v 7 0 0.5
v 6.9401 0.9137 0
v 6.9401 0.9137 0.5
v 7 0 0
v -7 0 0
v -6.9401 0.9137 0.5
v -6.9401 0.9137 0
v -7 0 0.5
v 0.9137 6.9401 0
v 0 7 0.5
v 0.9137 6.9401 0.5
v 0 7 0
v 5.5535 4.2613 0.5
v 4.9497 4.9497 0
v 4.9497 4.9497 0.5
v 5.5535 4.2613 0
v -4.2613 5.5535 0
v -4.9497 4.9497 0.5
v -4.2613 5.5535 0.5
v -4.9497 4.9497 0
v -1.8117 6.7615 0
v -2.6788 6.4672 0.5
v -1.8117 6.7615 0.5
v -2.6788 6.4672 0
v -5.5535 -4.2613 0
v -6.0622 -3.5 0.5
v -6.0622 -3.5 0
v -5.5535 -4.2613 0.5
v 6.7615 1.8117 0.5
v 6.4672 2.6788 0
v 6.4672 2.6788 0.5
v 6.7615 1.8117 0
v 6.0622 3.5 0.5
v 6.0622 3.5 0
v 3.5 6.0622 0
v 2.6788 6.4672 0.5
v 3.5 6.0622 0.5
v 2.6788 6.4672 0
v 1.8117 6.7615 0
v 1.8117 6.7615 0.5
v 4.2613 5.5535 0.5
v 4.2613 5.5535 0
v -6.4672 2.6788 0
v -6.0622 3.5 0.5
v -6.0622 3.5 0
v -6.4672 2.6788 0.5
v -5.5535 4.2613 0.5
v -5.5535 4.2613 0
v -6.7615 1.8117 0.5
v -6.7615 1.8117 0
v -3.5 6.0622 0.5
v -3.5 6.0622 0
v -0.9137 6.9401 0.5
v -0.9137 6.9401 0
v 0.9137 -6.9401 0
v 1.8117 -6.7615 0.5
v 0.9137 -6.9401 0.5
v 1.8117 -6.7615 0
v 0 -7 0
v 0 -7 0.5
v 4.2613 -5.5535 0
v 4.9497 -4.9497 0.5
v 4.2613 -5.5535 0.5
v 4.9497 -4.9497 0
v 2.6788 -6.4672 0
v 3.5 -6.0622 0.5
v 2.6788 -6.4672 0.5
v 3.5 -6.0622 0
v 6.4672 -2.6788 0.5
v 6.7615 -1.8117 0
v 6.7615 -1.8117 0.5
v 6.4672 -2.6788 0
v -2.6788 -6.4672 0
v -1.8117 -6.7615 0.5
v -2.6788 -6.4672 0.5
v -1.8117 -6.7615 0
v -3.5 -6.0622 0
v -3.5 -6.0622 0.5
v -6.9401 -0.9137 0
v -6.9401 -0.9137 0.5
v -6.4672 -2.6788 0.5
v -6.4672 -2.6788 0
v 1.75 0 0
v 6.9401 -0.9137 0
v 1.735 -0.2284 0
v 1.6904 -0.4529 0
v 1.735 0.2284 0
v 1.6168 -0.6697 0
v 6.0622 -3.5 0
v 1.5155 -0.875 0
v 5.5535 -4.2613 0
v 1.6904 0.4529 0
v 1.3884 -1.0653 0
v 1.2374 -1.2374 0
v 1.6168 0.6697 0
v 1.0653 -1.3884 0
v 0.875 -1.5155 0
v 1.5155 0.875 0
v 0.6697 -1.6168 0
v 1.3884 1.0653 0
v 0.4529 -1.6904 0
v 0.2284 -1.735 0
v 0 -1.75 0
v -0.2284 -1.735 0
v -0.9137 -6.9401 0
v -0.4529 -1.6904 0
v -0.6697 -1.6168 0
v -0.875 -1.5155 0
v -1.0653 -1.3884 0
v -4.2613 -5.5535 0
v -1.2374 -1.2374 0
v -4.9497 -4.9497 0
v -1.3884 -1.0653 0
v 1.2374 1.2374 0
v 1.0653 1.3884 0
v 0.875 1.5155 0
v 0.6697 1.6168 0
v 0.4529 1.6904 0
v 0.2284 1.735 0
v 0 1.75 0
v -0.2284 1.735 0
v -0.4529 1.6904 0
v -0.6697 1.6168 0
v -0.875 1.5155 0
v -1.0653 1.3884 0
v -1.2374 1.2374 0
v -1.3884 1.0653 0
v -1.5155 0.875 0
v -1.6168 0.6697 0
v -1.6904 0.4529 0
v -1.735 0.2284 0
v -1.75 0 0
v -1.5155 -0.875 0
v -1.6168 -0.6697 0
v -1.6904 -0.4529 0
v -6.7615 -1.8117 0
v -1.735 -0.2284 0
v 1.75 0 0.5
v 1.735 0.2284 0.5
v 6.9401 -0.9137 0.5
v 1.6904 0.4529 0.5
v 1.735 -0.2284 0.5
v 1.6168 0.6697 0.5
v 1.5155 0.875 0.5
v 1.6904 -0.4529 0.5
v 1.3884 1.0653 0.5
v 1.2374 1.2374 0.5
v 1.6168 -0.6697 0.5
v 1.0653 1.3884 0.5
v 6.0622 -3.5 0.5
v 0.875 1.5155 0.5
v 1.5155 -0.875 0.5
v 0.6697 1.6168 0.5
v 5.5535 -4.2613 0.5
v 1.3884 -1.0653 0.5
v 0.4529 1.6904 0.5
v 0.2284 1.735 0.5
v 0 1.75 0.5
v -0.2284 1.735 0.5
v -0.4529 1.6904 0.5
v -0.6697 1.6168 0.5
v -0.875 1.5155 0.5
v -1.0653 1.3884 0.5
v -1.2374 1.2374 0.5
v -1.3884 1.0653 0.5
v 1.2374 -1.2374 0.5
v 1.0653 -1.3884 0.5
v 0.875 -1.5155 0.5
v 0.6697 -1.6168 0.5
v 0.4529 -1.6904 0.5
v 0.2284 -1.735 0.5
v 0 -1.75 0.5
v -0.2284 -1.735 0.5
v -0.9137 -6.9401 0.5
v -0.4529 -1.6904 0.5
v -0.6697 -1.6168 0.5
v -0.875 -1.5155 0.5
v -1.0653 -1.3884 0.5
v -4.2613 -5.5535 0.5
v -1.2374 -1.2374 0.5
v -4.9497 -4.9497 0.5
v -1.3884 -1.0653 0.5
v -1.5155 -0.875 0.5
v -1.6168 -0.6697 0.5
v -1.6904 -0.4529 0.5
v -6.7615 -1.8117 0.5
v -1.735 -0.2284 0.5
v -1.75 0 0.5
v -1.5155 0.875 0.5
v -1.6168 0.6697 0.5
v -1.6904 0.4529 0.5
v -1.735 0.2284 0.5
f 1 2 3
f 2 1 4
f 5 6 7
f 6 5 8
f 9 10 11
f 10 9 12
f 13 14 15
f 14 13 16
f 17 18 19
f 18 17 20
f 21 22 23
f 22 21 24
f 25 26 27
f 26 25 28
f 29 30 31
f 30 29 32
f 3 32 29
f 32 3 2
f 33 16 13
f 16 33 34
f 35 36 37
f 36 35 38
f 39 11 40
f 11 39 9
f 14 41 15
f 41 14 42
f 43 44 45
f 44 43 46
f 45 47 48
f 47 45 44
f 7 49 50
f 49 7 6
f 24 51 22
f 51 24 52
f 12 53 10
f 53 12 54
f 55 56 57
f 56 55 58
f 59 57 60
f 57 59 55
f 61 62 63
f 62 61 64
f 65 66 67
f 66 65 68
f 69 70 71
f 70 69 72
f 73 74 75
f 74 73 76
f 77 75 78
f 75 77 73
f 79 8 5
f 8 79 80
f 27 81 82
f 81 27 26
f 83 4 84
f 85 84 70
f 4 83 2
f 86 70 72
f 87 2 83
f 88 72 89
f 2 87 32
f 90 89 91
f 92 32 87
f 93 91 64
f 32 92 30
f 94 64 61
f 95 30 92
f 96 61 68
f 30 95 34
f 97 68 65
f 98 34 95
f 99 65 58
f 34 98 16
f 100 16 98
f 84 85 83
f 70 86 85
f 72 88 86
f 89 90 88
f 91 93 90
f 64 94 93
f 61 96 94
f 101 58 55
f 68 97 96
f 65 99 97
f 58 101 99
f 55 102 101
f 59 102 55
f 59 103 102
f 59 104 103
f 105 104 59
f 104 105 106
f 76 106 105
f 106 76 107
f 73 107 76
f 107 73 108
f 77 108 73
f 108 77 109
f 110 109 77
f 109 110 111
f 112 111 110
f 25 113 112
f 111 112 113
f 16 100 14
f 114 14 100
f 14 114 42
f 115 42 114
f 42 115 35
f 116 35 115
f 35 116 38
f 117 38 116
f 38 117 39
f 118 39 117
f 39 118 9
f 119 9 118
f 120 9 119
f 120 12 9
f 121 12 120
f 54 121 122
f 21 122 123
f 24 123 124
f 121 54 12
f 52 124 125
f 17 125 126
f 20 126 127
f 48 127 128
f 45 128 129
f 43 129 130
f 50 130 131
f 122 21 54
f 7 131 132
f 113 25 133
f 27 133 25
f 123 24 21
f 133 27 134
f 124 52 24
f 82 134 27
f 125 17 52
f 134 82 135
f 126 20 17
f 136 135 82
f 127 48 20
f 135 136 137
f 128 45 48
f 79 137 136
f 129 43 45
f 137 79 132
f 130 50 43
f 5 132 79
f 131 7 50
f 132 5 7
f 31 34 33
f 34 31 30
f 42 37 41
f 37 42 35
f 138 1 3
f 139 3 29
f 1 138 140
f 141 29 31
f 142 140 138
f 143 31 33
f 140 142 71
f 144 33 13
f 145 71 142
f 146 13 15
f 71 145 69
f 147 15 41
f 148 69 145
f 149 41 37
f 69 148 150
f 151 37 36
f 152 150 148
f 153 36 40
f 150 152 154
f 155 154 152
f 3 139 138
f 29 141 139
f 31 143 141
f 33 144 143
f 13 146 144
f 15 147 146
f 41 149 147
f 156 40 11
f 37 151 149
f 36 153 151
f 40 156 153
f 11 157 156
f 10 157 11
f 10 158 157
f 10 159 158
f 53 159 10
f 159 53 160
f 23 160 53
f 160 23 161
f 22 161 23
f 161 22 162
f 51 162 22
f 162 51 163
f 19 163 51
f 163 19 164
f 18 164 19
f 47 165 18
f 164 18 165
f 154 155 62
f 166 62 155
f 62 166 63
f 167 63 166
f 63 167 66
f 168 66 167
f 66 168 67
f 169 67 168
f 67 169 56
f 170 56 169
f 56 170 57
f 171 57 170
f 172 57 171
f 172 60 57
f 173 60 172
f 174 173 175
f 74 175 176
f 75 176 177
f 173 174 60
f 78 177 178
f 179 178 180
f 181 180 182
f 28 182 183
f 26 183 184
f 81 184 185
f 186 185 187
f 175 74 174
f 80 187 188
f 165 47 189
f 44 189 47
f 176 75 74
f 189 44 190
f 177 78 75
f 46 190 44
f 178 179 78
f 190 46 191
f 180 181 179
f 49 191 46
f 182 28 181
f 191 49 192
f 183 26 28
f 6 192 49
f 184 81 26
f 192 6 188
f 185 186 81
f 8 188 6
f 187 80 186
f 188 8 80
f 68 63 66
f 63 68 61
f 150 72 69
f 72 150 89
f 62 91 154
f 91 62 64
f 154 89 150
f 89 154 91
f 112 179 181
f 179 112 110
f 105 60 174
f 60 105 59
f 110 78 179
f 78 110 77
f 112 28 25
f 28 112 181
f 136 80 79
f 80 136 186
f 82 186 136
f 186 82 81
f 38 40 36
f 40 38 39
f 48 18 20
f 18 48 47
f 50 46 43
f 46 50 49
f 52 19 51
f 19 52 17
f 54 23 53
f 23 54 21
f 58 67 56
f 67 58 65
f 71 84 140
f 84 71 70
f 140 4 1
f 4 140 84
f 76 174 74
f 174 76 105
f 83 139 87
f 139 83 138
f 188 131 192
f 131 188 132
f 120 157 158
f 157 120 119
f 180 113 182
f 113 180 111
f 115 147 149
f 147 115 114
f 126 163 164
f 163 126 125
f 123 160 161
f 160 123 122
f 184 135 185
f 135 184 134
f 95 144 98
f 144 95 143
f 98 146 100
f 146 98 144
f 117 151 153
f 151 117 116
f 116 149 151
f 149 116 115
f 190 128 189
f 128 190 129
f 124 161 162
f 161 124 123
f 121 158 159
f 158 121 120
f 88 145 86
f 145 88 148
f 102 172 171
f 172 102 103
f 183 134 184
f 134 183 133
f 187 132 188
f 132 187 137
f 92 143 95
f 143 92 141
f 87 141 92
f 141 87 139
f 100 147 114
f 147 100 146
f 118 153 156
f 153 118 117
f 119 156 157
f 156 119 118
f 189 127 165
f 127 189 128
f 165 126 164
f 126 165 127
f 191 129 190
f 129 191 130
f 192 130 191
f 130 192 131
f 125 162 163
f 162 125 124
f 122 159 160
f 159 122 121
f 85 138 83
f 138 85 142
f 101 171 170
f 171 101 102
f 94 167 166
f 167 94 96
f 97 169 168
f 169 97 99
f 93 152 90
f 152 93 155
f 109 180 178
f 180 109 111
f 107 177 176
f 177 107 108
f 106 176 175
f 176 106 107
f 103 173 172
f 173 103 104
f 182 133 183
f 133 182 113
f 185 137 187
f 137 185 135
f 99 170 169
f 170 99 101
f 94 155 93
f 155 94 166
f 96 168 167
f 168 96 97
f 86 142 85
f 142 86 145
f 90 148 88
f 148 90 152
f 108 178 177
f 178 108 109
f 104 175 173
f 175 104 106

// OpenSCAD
// file: parameters.scad
// =============================================================================
// Gen-CB — nightly 2026-10-13 (physics_scorer, honest magpylib watts)
// Wire-saver stator for the Gen-CA rotors: only 4.05 mm of copper (9 layers), so the magnet faces are 6.65 mm apart and peak Bz at the copper reaches ≈0.70 T. It needs ≈300 m of wire (≈80 m less than Gen-CA, ≈75 m less than Gen-BX) and still out-scores the Gen-BX champion; it shares every rotor part, the steel, the frame rods and the bearing bridges with Gen-CA, so the two stators swap on the same machine.
// Clocking 0 deg (magnets N facing S) + D-flat keyed bore + index notch + flip-symmetric hole map.
// Windable 2-piece bobbin; turns = physics_scorer turns_fit; copper only between flanges.
// Steel back-iron: 2× Ø194 × 4.76 mm (3/16") mild-steel discs (steel_backiron_disc.dxf); magnets sit ON the steel
// (through-pockets) -> score with --back-iron. Night 2026-10-13.
// =============================================================================
topology            = "dual_rotor";

// --- Wire / winding (physics_scorer winding-fit) -------------------------------
wire_awg            = 26;
wire_od             = 0.45;     // insulated OD mm (bare 0.405)
fill_realistic      = 0.65;     // insulated-wire area / window (DENSE layered wind with a jig; scorer cap 0.65)
turns               = 292;       // = physics_scorer turns_fit (do NOT raise)
coil_former_type    = "bobbin";
coil_core_inset     = 17.70;     // radial copper build: hub = copper boundary inset by this
wind_build_axial    = 0.0;      // nothing proud of the flanges
wind_build_radial   = 0.0;

// --- Bobbin (base + lid) ---------------------------------------------------------
coil_id_r           = 63.00;    // copper boundary sector
coil_od_r           = 102.00;
span_deg            = 26.82;    // = pitch - 2*asin((wall+0.85)/coil_id_r) -> >=1.2 mm stator web
former_web          = 4.05;     // copper height between flanges (TALL copper: steel keeps Bz up)
flange_t            = 0.80;     // >= 0.8 mm FDM wall rule (tall winds push on the flanges)
wall                = 0.80;     // flange lip beyond copper
former_bare_h       = former_web + 2 * flange_t;
coil_envelope_h     = former_bare_h + 2 * wind_build_axial;
tab_w               = 7.0;
tab_len             = 7.0;
tab_h               = former_bare_h / 2;
pin_d               = 1.9;      // 1.75 mm filament locating pin
coil_mount_r        = coil_od_r + 0.2 + 4.0;
lead_y              = 1.6;
lead_slot_w         = 0.9;
lead_groove_d       = 0.6;

// --- Gap -------------------------------------------------------------------------
run_clear           = 0.50;     // rotor face -> flange
gap_spacer_h        = run_clear + wind_build_axial;
m2m                 = coil_envelope_h + 2 * run_clear;   // rotor face to rotor face (= gap_sleeve length)

// --- Stator ----------------------------------------------------------------------
coil_stations       = 12;
bay_clear           = 0.35;     // 0.35 mm: bobbin BASES print IN PLACE inside the stator bays (print-in-place gap), then pop out
stator_thick        = former_bare_h;                        // bobbins flush both faces
stator_od           = 225.0;
shaft_clear_stator  = 14.0;     // stator is static; gap sleeve OD 12 spins inside
stator_ir           = 57.85;    // ANNULAR stator: open centre (nested one-plate pack); inner rim 4.0 mm

// --- Rotor(s) --------------------------------------------------------------------
magnet_Br           = 1.43;     // N52
magnet_d_large      = 20.0;
magnet_h_large      = 5.0;      // one O20x5 per pocket
magnet_h_small      = 5.0;      // unused: no O5 pockets in this kit
halbach_magnetisation = "none";  // NO O5 assist magnets in this kit (scan: they lower the 4-pole score)
rotor_b_same_axis   = true;     // same-index magnets share one axis: N faces S across the gap
large_pocket_d      = 20.3;
small_pocket_d      = 5.3;
pocket_h            = 5.00;     // THROUGH the carrier: magnet back face sits on the steel disc (FLUSH seat: carrier = magnet height, magnet face level with the rotor face)
large_n             = 8;
R_large             = 84.0;
small_r_list        = [];       // no O5 pockets
carrier_od          = 194.0;
ring_ir             = 70.85;    // RING rotor: PLA magnet ring r ring_ir..carrier_od/2 (steel disc = structural rotor)
hub_flange_od       = 74.0;     // separate rotor_hub flange (inside the ring, flush with the ring face)
csk_d               = 6.6;      // M3 countersunk head pocket (ISO 10642 head 6.0 nominal) on the stator face
csk_depth           = 1.55;     // = (csk_d - m3_clear) / 2: 90 deg cone; head sits 0.3 mm below the face
n_seg               = 8;        // magnet-carrier ARCS per rotor (segmented carrier)
seg_deg             = 360 / n_seg;
seg_start           = -22.5;   // arc edge angle (between pocket 0 and its clamp bolt)
seg_kerf_deg        = 0.4;      // gap between neighbouring arcs on the steel
carrier_thick       = pocket_h;
hub_h               = 12.0;     // > steel_t + insert: radial set-screw clears the steel
hub_od              = 24.0;     // slim hub so the M4 brace rods fit at R~18 inside the coil ring
hub_insert_d        = 4.0;      // M3 heat-set insert, radial, bears on the D-flat
rotor_b_offset_deg  = 0.0;      // CLOCKING: magnets directly opposite
shaft_key           = "dflat";
dflat_depth         = 0.5;      // 8 mm shaft with 0.5 mm flat (7.5 across flat)
index_notch_d       = 3.0;

// --- Steel back-iron (buyable laser-cut) -------------------------------------------
steel_t             = 4.76;      // mild steel thickness (image method ignores it; sized from steel_flux.py so the return path stays well below saturation)
steel_center_hole   = 26.0;     // slips over the rotor hub (OD 24)
steel_od            = carrier_od;   // steel disc OD = rotor carrier OD

// --- Modular MAX interface ----------------------------------------------------------
shaft_bore          = 8.35;
dflat_x             = 4.0 - dflat_depth + (shaft_bore - 8.0) / 2;
bearing_d           = 21.85;
bearing_h           = 7.2;
m3_clear            = 3.5;
bolt_r_inner        = 30.0;     // M3 steel-disc clamp bolts (inside the magnet ring)
bolt_n_inner        = 4;
bolt_inner_angles   = [0, 90, 180, 270];
bolt_r_outer        = 84.0;     // second M3 steel-disc clamp ring
bolt_outer_angles   = [22.5, 67.5, 112.5, 157.5, 202.5, 247.5, 292.5, 337.5];
flange_bolt_r       = 107.5;     // frame rods: OUTSIDE the rotor OD (rotors spin inside them)
flange_bolt_n       = 4;
flange_bolt_offset  = 45.00;    // between coil stations -> never cuts a lead groove/tab
brace_r             = 18.0;
brace_d             = 4.3;      // temporary M4 jack rods (assembly only)
brace_n             = 4;
brace_angles        = [45, 135, 225, 315];          // flip-symmetric

spacer_pad_od       = 14.0;
spacer_pad_id       = m3_clear;
endbell_od          = 225.0;
endbell_thick       = 8.0;
endbell_shaft_clear = 10.0;
collar_h            = 10.0;
standoff_od         = 9.0;
frame_standoff_h    = run_clear + carrier_thick + hub_h + collar_h + 2.0;
sleeve_od           = 12.0;
plate_max_mm        = 410;

$fn = 64;
// main file
// Gen-CB — assembly gap shim, h = run_clear (rotor face -> flange); copper is inside the flanges
include <parameters.scad>;
$fn = 48;
difference() {
    cylinder(d=spacer_pad_od, h=gap_spacer_h);
    translate([0, 0, -0.1]) cylinder(d=spacer_pad_id, h=gap_spacer_h + 0.2);
}
